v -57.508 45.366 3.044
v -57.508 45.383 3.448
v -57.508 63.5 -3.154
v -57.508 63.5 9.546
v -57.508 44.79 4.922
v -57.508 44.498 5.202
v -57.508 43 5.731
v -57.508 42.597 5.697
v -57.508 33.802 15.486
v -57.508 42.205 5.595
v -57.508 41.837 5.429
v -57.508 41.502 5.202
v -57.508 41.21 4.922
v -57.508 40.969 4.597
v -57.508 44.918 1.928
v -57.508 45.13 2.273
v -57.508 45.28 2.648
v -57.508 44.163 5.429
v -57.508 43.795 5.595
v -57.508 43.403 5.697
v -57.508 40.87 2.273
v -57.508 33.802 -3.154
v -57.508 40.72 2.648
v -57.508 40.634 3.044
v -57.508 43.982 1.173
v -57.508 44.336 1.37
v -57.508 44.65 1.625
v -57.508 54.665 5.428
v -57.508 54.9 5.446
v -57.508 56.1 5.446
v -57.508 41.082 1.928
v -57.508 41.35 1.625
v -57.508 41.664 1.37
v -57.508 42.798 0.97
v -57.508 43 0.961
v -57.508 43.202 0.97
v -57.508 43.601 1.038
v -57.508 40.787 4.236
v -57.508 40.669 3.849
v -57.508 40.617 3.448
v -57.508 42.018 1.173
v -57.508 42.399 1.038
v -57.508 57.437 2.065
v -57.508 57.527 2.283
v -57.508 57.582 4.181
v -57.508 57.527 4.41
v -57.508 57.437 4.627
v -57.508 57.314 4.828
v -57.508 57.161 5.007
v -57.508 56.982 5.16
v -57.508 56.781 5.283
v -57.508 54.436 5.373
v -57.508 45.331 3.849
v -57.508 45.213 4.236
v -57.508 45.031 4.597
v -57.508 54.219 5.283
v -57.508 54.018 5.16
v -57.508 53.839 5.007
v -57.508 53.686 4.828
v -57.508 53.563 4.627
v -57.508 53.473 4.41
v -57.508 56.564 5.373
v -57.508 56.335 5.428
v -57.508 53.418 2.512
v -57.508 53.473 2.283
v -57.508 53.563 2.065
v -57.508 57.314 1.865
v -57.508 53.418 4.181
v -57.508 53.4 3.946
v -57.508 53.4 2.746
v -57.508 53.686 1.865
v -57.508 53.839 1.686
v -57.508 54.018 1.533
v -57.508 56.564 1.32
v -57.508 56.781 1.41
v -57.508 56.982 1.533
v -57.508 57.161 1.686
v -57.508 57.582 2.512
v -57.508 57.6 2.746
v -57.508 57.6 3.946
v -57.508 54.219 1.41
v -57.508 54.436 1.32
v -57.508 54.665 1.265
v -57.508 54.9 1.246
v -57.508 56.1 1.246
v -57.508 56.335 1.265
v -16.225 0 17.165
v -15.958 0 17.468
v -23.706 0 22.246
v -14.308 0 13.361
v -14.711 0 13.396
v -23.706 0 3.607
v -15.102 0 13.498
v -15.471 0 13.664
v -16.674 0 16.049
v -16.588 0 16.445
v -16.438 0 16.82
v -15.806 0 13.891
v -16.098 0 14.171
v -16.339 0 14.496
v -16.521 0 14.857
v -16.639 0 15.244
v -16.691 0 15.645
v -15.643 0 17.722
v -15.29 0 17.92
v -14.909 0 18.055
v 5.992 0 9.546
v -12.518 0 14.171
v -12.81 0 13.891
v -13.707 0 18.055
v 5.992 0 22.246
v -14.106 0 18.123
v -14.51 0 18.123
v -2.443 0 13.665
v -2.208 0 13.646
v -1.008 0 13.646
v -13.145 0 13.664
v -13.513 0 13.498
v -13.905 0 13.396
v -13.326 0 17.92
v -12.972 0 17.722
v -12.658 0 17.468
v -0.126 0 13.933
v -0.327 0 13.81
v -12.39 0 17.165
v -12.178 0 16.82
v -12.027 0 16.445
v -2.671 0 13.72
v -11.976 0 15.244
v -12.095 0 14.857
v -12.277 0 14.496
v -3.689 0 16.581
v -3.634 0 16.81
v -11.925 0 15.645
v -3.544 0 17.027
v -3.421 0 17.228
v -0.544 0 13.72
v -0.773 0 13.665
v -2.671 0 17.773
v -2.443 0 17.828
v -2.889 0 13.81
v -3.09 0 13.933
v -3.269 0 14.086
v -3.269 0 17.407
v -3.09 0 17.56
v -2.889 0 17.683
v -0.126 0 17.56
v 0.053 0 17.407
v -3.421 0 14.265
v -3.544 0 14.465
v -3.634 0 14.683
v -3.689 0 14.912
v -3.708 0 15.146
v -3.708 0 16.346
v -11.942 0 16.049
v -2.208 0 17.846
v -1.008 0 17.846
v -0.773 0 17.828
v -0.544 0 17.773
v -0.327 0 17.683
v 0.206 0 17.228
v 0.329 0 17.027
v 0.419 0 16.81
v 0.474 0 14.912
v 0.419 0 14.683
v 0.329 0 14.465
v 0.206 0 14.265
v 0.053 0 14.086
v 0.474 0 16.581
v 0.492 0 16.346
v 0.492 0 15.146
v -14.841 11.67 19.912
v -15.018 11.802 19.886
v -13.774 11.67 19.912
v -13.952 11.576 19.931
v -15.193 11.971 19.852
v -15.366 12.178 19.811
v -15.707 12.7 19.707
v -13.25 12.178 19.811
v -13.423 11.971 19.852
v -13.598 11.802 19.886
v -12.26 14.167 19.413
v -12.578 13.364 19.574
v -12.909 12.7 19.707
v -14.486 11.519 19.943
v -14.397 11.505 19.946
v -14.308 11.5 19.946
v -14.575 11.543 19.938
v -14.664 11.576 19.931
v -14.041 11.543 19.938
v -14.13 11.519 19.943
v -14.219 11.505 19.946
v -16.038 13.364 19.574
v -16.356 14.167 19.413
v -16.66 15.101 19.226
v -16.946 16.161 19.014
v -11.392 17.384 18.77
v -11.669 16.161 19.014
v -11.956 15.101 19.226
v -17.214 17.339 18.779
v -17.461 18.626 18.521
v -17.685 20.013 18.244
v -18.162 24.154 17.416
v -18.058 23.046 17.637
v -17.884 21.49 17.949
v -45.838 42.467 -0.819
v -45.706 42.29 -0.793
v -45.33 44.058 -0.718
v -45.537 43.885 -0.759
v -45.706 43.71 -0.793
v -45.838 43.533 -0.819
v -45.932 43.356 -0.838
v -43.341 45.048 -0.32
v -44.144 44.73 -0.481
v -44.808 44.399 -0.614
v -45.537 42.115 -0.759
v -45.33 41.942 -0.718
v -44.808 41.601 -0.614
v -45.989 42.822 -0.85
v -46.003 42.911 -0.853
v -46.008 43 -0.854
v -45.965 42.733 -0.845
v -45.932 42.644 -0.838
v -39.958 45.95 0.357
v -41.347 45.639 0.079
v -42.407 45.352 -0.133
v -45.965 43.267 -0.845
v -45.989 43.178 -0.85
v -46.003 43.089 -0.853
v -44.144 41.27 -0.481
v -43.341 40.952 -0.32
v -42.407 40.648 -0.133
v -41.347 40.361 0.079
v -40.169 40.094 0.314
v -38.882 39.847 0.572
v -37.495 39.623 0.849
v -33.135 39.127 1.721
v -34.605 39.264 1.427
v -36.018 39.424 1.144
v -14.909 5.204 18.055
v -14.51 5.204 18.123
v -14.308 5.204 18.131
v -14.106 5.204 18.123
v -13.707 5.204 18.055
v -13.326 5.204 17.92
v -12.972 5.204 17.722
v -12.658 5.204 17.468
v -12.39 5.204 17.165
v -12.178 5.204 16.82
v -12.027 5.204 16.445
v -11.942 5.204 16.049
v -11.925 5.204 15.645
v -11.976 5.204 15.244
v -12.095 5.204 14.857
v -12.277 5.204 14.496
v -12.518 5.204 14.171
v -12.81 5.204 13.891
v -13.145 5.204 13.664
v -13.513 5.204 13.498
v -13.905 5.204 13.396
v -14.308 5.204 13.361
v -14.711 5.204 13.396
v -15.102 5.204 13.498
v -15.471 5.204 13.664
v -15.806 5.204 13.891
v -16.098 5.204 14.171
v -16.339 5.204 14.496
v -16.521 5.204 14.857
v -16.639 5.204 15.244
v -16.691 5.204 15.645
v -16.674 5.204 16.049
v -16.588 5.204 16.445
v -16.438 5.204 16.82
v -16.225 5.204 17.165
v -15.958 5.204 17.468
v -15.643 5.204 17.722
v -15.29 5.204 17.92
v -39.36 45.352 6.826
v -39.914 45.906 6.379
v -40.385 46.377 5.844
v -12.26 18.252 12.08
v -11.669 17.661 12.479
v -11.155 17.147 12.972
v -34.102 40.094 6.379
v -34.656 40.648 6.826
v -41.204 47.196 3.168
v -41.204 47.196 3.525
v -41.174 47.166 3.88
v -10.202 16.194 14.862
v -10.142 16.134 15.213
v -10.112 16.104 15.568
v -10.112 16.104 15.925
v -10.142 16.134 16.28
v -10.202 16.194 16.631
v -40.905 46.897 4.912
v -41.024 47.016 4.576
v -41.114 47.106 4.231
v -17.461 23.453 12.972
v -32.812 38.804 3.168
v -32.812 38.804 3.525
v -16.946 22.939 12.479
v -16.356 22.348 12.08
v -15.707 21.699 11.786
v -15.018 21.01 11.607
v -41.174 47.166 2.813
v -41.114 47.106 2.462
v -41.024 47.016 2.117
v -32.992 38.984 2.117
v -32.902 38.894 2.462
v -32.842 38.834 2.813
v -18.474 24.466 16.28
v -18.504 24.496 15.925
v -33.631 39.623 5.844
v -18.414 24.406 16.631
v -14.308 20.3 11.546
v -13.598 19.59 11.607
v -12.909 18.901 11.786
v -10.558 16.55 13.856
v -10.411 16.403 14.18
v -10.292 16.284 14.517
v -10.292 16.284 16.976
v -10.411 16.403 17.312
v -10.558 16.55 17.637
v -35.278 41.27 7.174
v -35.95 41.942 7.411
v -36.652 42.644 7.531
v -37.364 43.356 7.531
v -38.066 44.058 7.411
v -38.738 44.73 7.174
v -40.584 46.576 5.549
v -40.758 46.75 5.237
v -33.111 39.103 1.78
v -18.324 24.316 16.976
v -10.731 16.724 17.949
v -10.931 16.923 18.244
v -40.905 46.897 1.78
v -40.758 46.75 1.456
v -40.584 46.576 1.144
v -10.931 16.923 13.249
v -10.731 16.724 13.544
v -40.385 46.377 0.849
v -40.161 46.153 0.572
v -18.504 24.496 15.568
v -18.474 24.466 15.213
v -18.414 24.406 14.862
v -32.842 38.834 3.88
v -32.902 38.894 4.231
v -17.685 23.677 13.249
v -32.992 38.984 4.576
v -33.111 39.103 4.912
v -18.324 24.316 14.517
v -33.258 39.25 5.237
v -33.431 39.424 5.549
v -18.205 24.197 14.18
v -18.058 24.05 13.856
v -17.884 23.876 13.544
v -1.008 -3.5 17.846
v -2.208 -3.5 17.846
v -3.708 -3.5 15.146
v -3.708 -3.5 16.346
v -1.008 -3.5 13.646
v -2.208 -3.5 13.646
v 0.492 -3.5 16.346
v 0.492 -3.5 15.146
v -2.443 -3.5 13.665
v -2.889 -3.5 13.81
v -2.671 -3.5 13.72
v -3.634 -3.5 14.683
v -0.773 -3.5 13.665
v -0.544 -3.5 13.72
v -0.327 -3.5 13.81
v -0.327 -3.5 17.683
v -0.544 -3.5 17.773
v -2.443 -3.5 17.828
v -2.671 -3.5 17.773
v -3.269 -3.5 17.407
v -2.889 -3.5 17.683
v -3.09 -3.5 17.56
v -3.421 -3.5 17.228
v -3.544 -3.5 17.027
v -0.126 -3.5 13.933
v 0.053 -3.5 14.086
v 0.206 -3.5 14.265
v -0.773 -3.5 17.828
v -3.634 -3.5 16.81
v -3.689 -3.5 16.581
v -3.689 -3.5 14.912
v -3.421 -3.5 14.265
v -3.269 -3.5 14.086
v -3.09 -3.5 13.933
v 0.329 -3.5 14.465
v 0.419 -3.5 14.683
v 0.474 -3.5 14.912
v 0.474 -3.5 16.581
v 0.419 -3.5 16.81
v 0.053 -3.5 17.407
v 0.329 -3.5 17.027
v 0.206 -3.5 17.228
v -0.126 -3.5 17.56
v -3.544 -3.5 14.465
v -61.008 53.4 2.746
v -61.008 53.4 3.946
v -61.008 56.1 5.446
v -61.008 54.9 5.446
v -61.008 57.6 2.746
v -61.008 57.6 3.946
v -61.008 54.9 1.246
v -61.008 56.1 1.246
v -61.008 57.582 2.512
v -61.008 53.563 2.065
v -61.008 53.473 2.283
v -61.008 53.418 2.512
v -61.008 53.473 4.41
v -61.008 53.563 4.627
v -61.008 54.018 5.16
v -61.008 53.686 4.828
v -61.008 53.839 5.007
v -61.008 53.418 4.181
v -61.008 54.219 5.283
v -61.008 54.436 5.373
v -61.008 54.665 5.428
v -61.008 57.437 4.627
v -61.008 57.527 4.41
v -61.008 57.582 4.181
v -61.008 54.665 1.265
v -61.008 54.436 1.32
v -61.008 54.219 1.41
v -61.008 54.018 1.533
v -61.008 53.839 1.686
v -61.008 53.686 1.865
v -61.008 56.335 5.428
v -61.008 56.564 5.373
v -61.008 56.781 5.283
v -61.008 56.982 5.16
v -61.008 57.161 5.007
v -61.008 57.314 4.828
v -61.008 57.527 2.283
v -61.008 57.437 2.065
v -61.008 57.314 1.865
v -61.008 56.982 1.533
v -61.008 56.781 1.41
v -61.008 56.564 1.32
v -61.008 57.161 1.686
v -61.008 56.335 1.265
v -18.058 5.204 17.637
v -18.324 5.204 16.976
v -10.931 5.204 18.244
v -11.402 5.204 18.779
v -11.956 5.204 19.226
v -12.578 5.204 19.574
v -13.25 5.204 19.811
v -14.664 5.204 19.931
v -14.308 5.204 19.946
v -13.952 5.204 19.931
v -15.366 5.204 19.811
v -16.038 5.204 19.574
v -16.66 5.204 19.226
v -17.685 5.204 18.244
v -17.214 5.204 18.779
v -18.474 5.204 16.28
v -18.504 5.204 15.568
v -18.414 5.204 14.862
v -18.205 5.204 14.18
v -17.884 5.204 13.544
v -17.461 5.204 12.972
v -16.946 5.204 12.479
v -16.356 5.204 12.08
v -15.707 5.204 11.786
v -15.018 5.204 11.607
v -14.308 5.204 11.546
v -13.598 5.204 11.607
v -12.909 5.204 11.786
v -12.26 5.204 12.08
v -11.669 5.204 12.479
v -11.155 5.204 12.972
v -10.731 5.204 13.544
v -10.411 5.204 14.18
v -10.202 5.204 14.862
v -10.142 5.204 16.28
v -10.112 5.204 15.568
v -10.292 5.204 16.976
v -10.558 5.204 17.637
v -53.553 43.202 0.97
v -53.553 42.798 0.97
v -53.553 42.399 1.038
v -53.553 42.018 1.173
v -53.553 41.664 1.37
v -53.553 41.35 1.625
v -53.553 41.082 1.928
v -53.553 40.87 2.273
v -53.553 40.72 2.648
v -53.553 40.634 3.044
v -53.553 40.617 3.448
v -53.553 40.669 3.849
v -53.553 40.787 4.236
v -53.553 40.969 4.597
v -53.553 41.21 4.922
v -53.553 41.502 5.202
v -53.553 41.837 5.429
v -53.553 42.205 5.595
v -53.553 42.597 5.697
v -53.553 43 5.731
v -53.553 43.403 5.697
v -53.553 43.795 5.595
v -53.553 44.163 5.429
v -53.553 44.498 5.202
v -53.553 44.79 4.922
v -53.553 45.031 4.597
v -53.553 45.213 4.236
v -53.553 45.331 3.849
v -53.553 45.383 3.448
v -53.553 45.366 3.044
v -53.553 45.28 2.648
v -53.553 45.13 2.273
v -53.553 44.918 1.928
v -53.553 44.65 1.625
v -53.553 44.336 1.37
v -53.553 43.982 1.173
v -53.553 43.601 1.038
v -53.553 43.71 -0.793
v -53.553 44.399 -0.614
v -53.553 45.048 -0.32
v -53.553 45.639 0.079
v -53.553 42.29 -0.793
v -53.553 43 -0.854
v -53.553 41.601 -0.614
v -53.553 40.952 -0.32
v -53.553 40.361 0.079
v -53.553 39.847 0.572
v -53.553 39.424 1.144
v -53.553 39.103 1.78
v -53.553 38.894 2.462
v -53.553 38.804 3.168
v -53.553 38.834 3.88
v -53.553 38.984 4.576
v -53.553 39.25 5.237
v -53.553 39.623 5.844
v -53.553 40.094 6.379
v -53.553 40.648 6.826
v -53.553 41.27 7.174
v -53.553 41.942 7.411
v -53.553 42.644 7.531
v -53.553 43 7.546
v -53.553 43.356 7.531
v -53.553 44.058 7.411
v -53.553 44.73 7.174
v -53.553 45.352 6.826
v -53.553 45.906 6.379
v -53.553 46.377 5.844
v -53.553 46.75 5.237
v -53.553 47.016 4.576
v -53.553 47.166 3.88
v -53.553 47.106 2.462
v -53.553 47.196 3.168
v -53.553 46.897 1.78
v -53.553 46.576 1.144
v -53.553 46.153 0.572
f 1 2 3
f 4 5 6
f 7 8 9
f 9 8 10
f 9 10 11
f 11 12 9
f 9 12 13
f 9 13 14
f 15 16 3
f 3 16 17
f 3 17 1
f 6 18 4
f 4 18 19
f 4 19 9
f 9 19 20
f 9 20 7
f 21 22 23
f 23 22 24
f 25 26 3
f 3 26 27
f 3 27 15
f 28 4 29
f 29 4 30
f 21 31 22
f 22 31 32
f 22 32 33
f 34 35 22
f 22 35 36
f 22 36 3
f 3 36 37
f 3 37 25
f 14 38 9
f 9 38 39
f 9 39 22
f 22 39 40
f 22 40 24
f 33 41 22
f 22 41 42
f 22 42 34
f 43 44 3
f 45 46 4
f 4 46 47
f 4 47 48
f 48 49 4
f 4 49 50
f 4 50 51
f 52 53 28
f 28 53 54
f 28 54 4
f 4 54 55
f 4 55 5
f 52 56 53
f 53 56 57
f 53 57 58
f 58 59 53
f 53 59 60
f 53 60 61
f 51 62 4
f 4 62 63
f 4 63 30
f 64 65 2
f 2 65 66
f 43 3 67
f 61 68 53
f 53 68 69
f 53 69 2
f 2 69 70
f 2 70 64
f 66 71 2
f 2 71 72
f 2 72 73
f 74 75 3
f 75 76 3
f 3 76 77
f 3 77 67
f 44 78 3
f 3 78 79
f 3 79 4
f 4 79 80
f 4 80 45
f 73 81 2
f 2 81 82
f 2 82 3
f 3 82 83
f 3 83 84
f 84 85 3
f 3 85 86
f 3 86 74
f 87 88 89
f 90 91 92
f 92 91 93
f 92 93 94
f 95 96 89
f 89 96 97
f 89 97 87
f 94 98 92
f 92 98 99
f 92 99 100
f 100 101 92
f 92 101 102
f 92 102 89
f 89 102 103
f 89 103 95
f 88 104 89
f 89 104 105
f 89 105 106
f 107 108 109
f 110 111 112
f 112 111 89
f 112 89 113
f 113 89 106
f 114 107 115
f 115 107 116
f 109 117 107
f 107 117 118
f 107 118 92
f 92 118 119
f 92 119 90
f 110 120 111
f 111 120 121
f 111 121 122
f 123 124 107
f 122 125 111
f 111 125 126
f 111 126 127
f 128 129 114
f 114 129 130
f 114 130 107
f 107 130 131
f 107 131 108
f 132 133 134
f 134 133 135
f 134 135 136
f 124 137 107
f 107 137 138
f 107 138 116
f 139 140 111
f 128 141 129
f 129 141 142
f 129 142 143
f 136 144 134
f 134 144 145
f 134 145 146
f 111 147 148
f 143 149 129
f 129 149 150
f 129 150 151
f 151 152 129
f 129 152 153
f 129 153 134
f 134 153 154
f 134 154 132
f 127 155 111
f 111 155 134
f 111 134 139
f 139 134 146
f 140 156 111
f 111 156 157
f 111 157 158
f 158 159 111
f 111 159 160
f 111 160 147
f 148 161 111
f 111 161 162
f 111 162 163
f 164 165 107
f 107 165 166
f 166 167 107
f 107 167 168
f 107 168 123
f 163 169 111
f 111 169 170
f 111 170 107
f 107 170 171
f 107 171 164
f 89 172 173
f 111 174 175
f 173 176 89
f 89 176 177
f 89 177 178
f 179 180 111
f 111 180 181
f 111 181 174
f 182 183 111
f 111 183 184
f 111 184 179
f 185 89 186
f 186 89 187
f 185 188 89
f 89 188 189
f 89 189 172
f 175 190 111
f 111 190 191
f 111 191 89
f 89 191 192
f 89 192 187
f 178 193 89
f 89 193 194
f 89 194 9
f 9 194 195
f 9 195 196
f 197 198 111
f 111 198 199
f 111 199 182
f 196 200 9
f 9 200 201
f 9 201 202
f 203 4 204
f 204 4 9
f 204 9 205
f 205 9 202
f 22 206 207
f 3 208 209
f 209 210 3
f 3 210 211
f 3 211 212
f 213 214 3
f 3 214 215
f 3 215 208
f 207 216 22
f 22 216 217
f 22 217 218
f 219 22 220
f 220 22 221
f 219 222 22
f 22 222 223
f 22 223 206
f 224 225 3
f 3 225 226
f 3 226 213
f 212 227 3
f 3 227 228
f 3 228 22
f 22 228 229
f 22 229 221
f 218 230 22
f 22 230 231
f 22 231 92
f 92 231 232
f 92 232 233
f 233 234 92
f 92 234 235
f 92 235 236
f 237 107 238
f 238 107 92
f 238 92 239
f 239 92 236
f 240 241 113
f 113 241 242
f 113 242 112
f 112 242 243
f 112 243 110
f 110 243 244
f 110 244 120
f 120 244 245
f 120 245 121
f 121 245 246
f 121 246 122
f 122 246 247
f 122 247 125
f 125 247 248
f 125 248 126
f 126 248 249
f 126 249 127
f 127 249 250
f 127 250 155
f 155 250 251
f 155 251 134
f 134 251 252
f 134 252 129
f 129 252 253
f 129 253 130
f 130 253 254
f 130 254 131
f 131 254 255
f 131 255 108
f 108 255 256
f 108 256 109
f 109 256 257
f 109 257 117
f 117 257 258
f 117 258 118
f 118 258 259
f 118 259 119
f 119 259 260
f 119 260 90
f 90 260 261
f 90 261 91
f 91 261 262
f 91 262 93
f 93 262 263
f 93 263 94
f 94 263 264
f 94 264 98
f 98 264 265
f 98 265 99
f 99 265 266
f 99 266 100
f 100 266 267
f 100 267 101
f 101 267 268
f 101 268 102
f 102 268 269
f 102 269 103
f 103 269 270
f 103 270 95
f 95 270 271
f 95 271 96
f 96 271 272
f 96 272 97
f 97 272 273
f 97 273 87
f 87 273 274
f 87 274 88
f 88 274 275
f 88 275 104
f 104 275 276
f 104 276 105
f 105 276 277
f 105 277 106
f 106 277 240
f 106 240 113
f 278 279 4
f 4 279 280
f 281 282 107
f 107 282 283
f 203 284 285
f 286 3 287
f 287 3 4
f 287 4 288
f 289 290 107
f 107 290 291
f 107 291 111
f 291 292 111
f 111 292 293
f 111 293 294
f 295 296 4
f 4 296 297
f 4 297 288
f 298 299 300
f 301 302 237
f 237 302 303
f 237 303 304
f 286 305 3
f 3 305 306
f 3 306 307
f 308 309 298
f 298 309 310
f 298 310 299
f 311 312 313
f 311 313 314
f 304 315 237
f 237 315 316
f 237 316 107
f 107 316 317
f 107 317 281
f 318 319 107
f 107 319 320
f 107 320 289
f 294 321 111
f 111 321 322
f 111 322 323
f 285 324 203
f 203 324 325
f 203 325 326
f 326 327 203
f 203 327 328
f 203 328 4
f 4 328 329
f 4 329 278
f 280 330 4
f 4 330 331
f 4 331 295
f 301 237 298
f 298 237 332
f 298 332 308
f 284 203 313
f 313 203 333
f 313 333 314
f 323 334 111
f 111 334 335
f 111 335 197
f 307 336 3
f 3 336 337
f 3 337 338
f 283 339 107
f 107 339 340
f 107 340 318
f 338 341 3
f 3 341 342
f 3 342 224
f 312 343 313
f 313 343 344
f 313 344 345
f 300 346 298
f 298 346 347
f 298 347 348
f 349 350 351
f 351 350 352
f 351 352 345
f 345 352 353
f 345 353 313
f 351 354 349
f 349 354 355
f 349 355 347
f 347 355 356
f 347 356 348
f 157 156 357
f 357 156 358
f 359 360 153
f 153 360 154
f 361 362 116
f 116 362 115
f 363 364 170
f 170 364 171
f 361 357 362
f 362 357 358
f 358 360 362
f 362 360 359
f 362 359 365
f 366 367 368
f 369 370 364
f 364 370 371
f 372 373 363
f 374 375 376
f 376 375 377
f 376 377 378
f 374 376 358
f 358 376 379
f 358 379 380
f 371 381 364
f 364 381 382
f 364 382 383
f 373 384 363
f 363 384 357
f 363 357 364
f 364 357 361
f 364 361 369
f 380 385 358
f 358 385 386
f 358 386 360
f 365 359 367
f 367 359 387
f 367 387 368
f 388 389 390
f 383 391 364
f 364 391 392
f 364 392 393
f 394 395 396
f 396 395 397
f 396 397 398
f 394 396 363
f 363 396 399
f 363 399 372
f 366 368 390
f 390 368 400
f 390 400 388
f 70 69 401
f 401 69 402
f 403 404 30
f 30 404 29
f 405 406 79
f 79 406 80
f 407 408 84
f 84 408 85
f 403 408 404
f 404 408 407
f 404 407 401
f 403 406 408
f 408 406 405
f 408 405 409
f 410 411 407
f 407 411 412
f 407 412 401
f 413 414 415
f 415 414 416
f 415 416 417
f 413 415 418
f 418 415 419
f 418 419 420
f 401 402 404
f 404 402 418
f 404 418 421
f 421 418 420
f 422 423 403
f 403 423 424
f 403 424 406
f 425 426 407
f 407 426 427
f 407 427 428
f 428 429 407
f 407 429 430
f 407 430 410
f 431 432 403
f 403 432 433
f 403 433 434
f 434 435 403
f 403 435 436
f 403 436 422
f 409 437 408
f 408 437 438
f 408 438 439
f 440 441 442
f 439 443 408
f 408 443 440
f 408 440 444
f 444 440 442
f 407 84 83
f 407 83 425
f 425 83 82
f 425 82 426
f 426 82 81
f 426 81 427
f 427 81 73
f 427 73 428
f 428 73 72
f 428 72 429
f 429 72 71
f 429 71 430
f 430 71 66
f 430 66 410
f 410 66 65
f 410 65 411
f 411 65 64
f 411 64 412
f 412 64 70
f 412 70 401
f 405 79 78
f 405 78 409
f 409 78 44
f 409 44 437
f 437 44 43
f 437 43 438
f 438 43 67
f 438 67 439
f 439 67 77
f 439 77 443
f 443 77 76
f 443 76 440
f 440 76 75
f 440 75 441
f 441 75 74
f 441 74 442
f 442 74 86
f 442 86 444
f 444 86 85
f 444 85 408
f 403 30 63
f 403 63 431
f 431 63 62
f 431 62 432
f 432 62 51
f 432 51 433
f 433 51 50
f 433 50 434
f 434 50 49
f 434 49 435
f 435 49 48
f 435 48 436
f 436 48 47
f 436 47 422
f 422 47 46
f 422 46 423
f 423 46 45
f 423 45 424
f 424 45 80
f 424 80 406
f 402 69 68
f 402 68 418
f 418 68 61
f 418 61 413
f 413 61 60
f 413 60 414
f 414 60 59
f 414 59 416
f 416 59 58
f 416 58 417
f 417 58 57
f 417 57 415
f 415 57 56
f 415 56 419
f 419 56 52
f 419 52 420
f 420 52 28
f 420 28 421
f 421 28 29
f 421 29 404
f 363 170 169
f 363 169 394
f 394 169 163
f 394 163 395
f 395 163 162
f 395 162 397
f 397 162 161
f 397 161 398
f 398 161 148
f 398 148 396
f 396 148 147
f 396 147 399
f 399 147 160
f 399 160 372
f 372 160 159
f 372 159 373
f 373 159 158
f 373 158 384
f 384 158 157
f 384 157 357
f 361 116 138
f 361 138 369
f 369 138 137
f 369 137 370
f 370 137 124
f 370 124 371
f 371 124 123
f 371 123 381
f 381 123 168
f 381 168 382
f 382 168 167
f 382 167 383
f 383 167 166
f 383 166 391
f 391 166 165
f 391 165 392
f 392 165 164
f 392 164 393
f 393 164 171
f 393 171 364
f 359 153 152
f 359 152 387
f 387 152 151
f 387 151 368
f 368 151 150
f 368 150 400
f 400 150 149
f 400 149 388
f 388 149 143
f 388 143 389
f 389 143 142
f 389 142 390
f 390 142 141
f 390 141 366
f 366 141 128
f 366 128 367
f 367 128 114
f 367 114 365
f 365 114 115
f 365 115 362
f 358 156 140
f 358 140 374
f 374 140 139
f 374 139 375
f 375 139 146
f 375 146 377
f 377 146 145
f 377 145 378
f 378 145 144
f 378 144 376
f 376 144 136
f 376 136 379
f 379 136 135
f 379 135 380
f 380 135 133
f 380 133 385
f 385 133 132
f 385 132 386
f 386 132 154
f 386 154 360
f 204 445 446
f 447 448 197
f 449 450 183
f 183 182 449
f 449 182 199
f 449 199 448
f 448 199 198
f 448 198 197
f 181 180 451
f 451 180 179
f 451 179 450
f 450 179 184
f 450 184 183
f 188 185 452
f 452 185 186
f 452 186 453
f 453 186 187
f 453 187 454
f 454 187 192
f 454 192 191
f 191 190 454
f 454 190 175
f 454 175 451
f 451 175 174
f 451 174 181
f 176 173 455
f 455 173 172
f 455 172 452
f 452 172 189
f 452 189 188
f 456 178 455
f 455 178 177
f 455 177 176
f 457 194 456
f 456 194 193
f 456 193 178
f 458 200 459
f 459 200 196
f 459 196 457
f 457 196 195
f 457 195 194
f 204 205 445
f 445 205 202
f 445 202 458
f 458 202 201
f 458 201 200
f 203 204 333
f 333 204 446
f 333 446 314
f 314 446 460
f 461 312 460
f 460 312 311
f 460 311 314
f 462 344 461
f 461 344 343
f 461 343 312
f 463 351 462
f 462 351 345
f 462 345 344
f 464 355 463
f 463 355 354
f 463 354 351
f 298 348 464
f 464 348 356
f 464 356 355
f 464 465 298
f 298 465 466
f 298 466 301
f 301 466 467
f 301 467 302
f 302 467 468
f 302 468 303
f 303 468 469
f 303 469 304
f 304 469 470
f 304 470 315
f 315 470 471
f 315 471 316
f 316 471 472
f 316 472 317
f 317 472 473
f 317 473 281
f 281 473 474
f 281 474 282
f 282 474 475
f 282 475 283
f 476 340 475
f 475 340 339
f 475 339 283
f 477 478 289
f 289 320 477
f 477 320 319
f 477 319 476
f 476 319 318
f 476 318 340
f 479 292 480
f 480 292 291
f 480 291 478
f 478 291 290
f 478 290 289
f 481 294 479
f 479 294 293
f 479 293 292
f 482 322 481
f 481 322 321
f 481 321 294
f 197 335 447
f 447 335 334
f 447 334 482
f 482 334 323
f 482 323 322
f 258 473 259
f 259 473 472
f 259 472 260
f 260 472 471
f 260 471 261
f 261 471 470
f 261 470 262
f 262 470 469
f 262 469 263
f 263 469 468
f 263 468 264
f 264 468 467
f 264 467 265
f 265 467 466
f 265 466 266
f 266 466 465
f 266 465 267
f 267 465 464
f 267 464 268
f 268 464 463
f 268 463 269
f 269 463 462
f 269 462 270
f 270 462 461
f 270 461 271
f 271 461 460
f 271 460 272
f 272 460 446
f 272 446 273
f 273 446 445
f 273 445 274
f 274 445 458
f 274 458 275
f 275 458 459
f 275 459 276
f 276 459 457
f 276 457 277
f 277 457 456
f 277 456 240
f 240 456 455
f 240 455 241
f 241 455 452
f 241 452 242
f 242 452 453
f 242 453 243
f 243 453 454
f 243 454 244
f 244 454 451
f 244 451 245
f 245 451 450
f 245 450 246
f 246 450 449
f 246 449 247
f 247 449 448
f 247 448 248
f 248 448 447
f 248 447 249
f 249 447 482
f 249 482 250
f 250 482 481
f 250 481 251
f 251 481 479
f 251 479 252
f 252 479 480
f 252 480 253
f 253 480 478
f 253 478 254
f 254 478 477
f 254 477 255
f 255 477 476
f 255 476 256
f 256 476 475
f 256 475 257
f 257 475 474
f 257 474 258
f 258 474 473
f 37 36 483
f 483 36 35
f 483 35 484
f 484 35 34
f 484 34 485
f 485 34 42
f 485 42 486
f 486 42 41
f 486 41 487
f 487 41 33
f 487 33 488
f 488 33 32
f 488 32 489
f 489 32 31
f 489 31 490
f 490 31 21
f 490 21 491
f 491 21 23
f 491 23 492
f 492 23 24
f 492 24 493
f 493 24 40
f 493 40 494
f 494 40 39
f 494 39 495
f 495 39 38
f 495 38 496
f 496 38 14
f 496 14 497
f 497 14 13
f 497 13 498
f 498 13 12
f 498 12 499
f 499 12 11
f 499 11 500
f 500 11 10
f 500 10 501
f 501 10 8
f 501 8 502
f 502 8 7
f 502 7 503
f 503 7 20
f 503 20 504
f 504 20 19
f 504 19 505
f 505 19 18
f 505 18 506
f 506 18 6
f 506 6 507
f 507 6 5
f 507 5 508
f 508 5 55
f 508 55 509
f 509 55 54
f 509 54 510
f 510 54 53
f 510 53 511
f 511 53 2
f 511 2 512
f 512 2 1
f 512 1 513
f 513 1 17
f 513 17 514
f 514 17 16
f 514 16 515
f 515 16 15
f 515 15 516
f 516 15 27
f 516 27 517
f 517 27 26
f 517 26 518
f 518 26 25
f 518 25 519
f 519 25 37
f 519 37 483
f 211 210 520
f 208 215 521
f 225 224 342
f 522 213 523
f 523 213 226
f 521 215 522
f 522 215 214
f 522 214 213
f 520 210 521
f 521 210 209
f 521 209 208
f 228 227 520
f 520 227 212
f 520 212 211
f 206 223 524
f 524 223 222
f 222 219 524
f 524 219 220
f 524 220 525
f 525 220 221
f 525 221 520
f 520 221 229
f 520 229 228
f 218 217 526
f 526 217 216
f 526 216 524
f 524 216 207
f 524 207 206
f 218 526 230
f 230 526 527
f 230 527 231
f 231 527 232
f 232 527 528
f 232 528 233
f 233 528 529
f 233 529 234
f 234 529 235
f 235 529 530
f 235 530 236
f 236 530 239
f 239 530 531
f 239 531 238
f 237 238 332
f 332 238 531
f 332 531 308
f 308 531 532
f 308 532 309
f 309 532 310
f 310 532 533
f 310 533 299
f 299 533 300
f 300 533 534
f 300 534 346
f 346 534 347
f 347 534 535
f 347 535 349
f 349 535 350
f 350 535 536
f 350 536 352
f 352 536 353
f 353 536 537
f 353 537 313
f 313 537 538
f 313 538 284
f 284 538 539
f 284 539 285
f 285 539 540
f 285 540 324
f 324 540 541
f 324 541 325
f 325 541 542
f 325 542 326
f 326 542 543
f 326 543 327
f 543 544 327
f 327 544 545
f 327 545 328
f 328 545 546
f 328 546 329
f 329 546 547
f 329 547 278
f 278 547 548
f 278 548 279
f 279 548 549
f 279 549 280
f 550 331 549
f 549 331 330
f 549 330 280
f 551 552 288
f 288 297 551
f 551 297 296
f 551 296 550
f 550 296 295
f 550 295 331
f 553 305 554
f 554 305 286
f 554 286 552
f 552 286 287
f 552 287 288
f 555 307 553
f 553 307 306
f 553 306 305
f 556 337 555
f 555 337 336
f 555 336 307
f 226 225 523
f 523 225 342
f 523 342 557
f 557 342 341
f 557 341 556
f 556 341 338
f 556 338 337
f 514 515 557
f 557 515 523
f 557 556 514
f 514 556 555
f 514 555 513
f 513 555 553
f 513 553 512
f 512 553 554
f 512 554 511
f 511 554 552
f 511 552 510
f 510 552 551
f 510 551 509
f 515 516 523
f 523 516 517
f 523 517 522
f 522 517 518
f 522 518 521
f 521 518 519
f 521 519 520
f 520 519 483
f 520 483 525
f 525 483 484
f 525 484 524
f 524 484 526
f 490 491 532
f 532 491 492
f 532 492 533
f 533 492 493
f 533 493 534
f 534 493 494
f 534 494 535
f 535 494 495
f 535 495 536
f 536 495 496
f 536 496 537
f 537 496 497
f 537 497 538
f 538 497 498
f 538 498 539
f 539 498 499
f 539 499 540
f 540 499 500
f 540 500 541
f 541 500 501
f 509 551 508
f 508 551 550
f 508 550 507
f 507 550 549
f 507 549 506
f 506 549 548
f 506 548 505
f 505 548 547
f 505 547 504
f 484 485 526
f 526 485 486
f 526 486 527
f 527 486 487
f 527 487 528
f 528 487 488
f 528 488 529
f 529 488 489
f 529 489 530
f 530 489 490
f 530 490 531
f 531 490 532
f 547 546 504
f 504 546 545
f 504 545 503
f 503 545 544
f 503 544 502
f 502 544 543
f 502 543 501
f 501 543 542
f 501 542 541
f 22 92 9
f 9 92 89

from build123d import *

# Parameters (mm, degrees)
SKETCH2_W               = 63.5
SKETCH2_H               = 25.4
BOSS_EXTRUDE1_DEPTH     = 63.5
CUT_EXTRUDE1_DEPTH      = 90.356423253
SKETCH4_W               = 4.2
SKETCH4_H               = 4.2
BOSS_EXTRUDE2_DEPTH     = 3.5
SKETCH5_W               = 4.2
SKETCH5_H               = 4.2
BOSS_EXTRUDE3_DEPTH     = 3.5
FILLET1_R               = 1.5
CUT_EXTRUDE4_DEPTH      = 93.517057968
CUT_EXTRUDE5_DEPTH      = 91.824676174
SKETCH8_R               = 2.385
CUT_EXTRUDE6_DEPTH      = 94.305261385
CUT_EXTRUDE7_DEPTH      = 10
CUT_EXTRUDE7_DEPTH_BACK = 18
SKETCH12_R              = 4.2
SKETCH13_R              = 2.385
CUT_EXTRUDE8_DEPTH      = 95.953441302
CUT_EXTRUDE9_DEPTH      = 20
CUT_EXTRUDE9_DEPTH_BACK = 10
SKETCH14_R              = 4.2
SKETCH15_W              = 71.848813027
SKETCH15_H              = 26.708799916
CUT_EXTRUDE10_DEPTH     = 30


with BuildPart() as part:
    # Sketch2 → Boss-Extrude1 (new body)
    with BuildSketch(Plane(origin=(0, 0, 0), x_dir=(1, 0, 0), z_dir=(0, 1, 0))):
        with Locations((-25.757915773, -9.546483207)):
            Rectangle(SKETCH2_W, SKETCH2_H)
    extrude(amount=BOSS_EXTRUDE1_DEPTH)

    # Sketch3 → Cut-Extrude1 (cut, through all)
    with BuildSketch(Plane.XY.offset(22.246483207)):
        Polygon((-57.507915773, 63.5), (5.992084227, 0), (5.992084227, 63.5), align=None)
    extrude(amount=-CUT_EXTRUDE1_DEPTH, mode=Mode.SUBTRACT)

    # Sketch4 → Boss-Extrude2 (add)
    with BuildSketch(Plane.XZ):
        with Locations((-52.407915773, 15.746483207)):
            Rectangle(SKETCH4_W, SKETCH4_H)
        with Locations((-39.707915773, 15.746483207)):
            Rectangle(SKETCH4_W, SKETCH4_H)
        with Locations((-27.007915773, 15.746483207)):
            Rectangle(SKETCH4_W, SKETCH4_H)
        with Locations((-14.307915773, 15.746483207)):
            Rectangle(SKETCH4_W, SKETCH4_H)
        with Locations((-1.607915773, 15.746483207)):
            Rectangle(SKETCH4_W, SKETCH4_H)
    extrude(amount=BOSS_EXTRUDE2_DEPTH)

    # Sketch5 → Boss-Extrude3 (add)
    with BuildSketch(Plane.ZY.offset(57.507915773)):
        with Locations((3.346483207, 5.5)):
            Rectangle(SKETCH5_W, SKETCH5_H)
        with Locations((3.346483207, 18)):
            Rectangle(SKETCH5_W, SKETCH5_H)
        with Locations((3.346483207, 30.5)):
            Rectangle(SKETCH5_W, SKETCH5_H)
        with Locations((3.346483207, 43)):
            Rectangle(SKETCH5_W, SKETCH5_H)
        with Locations((3.346483207, 55.5)):
            Rectangle(SKETCH5_W, SKETCH5_H)
    extrude(amount=BOSS_EXTRUDE3_DEPTH)

    # Fillet1
    fillet1_edges = [part.edges().sort_by_distance(p)[0] for p in [
        (-59.257915773, 28.4, 1.246483207),
        (-59.257915773, 28.4, 5.446483207),
        (-59.257915773, 32.6, 5.446483207),
        (-59.257915773, 32.6, 1.246483207),
        (-59.257915773, 40.9, 1.246483207),
        (-59.257915773, 40.9, 5.446483207),
        (-59.257915773, 45.1, 5.446483207),
        (-59.257915773, 45.1, 1.246483207),
        (-59.257915773, 53.4, 1.246483207),
        (-59.257915773, 53.4, 5.446483207),
        (-59.257915773, 57.6, 5.446483207),
        (-59.257915773, 57.6, 1.246483207),
        (-54.507915773, -1.75, 17.846483207),
        (-54.507915773, -1.75, 13.646483207),
        (-50.307915773, -1.75, 13.646483207),
        (-50.307915773, -1.75, 17.846483207),
        (-37.607915773, -1.75, 17.846483207),
        (-41.807915773, -1.75, 17.846483207),
        (-41.807915773, -1.75, 13.646483207),
        (-37.607915773, -1.75, 13.646483207),
        (-24.907915773, -1.75, 17.846483207),
        (-29.107915773, -1.75, 17.846483207),
        (-29.107915773, -1.75, 13.646483207),
        (-24.907915773, -1.75, 13.646483207),
        (-12.207915773, -1.75, 17.846483207),
        (-16.407915773, -1.75, 17.846483207),
        (-16.407915773, -1.75, 13.646483207),
        (-12.207915773, -1.75, 13.646483207),
        (0.492084227, -1.75, 17.846483207),
        (-3.707915773, -1.75, 17.846483207),
        (-3.707915773, -1.75, 13.646483207),
        (0.492084227, -1.75, 13.646483207),
        (-59.257915773, 7.6, 1.246483207),
        (-59.257915773, 3.4, 1.246483207),
        (-59.257915773, 3.4, 5.446483207),
        (-59.257915773, 7.6, 5.446483207),
        (-59.257915773, 15.9, 1.246483207),
        (-59.257915773, 15.9, 5.446483207),
        (-59.257915773, 20.1, 5.446483207),
        (-59.257915773, 20.1, 1.246483207),
    ]]
    fillet(fillet1_edges, radius=FILLET1_R)

    # Sketch6 → Cut-Extrude4 (cut, through all)
    with BuildSketch(Plane.ZY.offset(57.507915773)):
        Polygon((22.246483207, 0), (9.546483207, 63.5), (22.246483207, 63.5), align=None)
    extrude(amount=-CUT_EXTRUDE4_DEPTH, mode=Mode.SUBTRACT)

    # Sketch7 → Cut-Extrude5 (cut, through all)
    with BuildSketch(Plane.XZ):
        Polygon((-57.507915773, -3.153516793), (5.992084227, 9.546483207), (5.992084227, -3.153516793), align=None)
    extrude(amount=-CUT_EXTRUDE5_DEPTH, mode=Mode.SUBTRACT)

    # Sketch8 → Cut-Extrude6 (cut, through all)
    with BuildSketch(Plane.XZ.offset(3.5)):
        with Locations(Location((-14.307915773, 15.746483207, 0), (0, 0, 270))):
            Circle(SKETCH8_R)
    extrude(amount=-CUT_EXTRUDE6_DEPTH, mode=Mode.SUBTRACT)

    # Sketch12 → Cut-Extrude7 (cut, two sides: drawn at the far end of the back side and taken through both)
    with BuildSketch(Plane(origin=(0, 23.204147495, 0), x_dir=(1, 0, 0), z_dir=(0, 1, 0)).offset(-CUT_EXTRUDE7_DEPTH_BACK)):
        with Locations(Location((-14.307915773, -15.746483207, 0), (0, 0, 203.417331866))):
            Circle(SKETCH12_R)
    extrude(amount=CUT_EXTRUDE7_DEPTH + CUT_EXTRUDE7_DEPTH_BACK, mode=Mode.SUBTRACT)

    # Sketch13 → Cut-Extrude8 (cut, through all)
    with BuildSketch(Plane.ZY.offset(61.007915773)):
        with Locations(Location((3.346483207, 43, 0), (0, 0, 200.648098404))):
            Circle(SKETCH13_R)
    extrude(amount=-CUT_EXTRUDE8_DEPTH, mode=Mode.SUBTRACT)

    # Sketch14 → Cut-Extrude9 (cut, two sides: drawn at the far end of the back side and taken through both)
    with BuildSketch(Plane.ZY.offset(33.553145543).offset(-CUT_EXTRUDE9_DEPTH_BACK)):
        with Locations(Location((3.346483207, 43, 0), (0, 0, 135.388680518))):
            Circle(SKETCH14_R)
    extrude(amount=CUT_EXTRUDE9_DEPTH + CUT_EXTRUDE9_DEPTH_BACK, mode=Mode.SUBTRACT)

    # Sketch15 → Cut-Extrude10 (cut)
    with BuildSketch(Plane(origin=(-11.853200292, -11.853200292, 0), x_dir=(0.7071067811865475, -0.7071067811865477, 0), z_dir=(0.7071067811865477, 0.7071067811865475, 0))):
        with Locations((-41.881900269, -9.453152274)):
            Rectangle(SKETCH15_W, SKETCH15_H)
    extrude(amount=-CUT_EXTRUDE10_DEPTH, mode=Mode.SUBTRACT)


solid = part.part
